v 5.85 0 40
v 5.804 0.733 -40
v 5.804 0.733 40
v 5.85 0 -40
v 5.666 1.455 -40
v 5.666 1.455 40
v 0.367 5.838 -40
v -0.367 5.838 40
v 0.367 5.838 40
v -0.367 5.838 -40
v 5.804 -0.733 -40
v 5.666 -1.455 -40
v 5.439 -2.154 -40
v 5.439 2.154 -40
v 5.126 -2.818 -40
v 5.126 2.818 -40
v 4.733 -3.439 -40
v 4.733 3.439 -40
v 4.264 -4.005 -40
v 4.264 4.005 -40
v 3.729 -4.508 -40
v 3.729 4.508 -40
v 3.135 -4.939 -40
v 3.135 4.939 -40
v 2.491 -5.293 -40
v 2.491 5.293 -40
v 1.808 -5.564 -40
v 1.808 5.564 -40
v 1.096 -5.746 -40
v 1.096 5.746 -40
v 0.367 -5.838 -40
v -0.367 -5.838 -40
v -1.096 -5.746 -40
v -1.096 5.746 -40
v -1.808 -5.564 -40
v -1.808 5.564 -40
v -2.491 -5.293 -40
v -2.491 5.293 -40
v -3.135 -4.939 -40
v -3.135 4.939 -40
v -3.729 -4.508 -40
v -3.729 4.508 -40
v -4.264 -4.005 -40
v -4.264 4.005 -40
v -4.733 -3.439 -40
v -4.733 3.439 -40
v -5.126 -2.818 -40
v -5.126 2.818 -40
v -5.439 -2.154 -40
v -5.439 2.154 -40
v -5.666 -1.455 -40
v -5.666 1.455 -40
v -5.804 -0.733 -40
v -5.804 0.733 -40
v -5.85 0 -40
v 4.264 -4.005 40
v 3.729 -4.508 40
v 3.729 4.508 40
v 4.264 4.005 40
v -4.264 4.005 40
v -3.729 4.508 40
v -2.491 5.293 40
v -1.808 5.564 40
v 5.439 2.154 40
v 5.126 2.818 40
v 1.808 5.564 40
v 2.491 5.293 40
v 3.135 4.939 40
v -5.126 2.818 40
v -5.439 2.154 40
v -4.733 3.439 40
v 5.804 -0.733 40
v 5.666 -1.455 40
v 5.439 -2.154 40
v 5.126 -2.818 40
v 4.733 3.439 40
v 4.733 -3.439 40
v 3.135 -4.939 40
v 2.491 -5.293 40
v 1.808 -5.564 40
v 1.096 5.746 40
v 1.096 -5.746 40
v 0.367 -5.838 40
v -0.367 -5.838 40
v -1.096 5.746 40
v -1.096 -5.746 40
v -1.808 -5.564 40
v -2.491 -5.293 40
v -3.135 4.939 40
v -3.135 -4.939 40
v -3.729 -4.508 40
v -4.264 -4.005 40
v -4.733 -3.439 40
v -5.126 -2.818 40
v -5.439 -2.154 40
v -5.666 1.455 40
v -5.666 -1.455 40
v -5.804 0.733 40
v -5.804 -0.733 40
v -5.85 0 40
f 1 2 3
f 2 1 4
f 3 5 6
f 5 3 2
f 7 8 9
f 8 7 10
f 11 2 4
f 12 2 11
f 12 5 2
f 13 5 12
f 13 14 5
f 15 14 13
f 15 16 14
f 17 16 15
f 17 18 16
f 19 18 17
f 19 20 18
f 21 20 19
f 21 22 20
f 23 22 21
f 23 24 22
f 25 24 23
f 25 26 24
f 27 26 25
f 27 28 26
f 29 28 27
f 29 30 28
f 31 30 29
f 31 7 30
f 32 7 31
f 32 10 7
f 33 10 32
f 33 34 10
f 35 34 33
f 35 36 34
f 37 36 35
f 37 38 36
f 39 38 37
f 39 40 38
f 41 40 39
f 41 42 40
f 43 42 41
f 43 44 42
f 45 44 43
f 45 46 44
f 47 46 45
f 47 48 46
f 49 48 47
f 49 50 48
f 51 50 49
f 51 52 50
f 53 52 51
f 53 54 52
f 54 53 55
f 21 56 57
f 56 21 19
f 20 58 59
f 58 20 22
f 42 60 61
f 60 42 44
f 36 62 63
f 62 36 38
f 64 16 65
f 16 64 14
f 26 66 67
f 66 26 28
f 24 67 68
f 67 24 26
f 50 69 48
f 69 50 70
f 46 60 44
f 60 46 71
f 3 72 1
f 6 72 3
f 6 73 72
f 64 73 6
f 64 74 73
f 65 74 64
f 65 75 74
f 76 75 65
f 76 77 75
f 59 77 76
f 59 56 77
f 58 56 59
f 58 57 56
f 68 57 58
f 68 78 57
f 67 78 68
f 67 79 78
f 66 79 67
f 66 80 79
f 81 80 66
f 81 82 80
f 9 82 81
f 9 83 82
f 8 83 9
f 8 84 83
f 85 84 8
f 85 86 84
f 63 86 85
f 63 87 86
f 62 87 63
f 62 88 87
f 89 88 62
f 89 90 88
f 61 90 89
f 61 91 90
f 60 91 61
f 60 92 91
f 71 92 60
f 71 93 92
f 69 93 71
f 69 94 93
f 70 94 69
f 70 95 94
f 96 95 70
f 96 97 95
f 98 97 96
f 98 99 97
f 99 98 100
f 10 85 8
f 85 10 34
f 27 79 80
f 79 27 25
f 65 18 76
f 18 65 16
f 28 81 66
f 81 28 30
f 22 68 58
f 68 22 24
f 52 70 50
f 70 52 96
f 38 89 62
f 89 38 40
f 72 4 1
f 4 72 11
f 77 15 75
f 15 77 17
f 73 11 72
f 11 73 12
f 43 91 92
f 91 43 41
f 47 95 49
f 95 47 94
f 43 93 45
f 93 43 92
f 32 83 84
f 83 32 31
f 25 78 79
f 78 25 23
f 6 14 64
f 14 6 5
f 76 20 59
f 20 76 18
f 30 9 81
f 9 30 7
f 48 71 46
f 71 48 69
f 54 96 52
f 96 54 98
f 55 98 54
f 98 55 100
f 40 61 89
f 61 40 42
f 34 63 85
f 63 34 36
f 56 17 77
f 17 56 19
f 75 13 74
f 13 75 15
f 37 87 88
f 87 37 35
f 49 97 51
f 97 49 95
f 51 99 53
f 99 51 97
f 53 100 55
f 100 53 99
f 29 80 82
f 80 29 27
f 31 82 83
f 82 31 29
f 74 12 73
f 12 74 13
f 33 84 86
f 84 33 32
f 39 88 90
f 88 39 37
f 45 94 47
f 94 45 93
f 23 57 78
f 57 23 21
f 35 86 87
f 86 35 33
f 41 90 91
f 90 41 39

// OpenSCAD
$fn = 50;


difference() {
	union() {
		translate(v = [0, 0, -40.0000000000]) {
			cylinder(h = 80, r = 5.8500000000);
		}
	}
	union() {
		translate(v = [0, 0, -100.0000000000]) {
			cylinder(h = 200, r = 0);
		}
	}
}
